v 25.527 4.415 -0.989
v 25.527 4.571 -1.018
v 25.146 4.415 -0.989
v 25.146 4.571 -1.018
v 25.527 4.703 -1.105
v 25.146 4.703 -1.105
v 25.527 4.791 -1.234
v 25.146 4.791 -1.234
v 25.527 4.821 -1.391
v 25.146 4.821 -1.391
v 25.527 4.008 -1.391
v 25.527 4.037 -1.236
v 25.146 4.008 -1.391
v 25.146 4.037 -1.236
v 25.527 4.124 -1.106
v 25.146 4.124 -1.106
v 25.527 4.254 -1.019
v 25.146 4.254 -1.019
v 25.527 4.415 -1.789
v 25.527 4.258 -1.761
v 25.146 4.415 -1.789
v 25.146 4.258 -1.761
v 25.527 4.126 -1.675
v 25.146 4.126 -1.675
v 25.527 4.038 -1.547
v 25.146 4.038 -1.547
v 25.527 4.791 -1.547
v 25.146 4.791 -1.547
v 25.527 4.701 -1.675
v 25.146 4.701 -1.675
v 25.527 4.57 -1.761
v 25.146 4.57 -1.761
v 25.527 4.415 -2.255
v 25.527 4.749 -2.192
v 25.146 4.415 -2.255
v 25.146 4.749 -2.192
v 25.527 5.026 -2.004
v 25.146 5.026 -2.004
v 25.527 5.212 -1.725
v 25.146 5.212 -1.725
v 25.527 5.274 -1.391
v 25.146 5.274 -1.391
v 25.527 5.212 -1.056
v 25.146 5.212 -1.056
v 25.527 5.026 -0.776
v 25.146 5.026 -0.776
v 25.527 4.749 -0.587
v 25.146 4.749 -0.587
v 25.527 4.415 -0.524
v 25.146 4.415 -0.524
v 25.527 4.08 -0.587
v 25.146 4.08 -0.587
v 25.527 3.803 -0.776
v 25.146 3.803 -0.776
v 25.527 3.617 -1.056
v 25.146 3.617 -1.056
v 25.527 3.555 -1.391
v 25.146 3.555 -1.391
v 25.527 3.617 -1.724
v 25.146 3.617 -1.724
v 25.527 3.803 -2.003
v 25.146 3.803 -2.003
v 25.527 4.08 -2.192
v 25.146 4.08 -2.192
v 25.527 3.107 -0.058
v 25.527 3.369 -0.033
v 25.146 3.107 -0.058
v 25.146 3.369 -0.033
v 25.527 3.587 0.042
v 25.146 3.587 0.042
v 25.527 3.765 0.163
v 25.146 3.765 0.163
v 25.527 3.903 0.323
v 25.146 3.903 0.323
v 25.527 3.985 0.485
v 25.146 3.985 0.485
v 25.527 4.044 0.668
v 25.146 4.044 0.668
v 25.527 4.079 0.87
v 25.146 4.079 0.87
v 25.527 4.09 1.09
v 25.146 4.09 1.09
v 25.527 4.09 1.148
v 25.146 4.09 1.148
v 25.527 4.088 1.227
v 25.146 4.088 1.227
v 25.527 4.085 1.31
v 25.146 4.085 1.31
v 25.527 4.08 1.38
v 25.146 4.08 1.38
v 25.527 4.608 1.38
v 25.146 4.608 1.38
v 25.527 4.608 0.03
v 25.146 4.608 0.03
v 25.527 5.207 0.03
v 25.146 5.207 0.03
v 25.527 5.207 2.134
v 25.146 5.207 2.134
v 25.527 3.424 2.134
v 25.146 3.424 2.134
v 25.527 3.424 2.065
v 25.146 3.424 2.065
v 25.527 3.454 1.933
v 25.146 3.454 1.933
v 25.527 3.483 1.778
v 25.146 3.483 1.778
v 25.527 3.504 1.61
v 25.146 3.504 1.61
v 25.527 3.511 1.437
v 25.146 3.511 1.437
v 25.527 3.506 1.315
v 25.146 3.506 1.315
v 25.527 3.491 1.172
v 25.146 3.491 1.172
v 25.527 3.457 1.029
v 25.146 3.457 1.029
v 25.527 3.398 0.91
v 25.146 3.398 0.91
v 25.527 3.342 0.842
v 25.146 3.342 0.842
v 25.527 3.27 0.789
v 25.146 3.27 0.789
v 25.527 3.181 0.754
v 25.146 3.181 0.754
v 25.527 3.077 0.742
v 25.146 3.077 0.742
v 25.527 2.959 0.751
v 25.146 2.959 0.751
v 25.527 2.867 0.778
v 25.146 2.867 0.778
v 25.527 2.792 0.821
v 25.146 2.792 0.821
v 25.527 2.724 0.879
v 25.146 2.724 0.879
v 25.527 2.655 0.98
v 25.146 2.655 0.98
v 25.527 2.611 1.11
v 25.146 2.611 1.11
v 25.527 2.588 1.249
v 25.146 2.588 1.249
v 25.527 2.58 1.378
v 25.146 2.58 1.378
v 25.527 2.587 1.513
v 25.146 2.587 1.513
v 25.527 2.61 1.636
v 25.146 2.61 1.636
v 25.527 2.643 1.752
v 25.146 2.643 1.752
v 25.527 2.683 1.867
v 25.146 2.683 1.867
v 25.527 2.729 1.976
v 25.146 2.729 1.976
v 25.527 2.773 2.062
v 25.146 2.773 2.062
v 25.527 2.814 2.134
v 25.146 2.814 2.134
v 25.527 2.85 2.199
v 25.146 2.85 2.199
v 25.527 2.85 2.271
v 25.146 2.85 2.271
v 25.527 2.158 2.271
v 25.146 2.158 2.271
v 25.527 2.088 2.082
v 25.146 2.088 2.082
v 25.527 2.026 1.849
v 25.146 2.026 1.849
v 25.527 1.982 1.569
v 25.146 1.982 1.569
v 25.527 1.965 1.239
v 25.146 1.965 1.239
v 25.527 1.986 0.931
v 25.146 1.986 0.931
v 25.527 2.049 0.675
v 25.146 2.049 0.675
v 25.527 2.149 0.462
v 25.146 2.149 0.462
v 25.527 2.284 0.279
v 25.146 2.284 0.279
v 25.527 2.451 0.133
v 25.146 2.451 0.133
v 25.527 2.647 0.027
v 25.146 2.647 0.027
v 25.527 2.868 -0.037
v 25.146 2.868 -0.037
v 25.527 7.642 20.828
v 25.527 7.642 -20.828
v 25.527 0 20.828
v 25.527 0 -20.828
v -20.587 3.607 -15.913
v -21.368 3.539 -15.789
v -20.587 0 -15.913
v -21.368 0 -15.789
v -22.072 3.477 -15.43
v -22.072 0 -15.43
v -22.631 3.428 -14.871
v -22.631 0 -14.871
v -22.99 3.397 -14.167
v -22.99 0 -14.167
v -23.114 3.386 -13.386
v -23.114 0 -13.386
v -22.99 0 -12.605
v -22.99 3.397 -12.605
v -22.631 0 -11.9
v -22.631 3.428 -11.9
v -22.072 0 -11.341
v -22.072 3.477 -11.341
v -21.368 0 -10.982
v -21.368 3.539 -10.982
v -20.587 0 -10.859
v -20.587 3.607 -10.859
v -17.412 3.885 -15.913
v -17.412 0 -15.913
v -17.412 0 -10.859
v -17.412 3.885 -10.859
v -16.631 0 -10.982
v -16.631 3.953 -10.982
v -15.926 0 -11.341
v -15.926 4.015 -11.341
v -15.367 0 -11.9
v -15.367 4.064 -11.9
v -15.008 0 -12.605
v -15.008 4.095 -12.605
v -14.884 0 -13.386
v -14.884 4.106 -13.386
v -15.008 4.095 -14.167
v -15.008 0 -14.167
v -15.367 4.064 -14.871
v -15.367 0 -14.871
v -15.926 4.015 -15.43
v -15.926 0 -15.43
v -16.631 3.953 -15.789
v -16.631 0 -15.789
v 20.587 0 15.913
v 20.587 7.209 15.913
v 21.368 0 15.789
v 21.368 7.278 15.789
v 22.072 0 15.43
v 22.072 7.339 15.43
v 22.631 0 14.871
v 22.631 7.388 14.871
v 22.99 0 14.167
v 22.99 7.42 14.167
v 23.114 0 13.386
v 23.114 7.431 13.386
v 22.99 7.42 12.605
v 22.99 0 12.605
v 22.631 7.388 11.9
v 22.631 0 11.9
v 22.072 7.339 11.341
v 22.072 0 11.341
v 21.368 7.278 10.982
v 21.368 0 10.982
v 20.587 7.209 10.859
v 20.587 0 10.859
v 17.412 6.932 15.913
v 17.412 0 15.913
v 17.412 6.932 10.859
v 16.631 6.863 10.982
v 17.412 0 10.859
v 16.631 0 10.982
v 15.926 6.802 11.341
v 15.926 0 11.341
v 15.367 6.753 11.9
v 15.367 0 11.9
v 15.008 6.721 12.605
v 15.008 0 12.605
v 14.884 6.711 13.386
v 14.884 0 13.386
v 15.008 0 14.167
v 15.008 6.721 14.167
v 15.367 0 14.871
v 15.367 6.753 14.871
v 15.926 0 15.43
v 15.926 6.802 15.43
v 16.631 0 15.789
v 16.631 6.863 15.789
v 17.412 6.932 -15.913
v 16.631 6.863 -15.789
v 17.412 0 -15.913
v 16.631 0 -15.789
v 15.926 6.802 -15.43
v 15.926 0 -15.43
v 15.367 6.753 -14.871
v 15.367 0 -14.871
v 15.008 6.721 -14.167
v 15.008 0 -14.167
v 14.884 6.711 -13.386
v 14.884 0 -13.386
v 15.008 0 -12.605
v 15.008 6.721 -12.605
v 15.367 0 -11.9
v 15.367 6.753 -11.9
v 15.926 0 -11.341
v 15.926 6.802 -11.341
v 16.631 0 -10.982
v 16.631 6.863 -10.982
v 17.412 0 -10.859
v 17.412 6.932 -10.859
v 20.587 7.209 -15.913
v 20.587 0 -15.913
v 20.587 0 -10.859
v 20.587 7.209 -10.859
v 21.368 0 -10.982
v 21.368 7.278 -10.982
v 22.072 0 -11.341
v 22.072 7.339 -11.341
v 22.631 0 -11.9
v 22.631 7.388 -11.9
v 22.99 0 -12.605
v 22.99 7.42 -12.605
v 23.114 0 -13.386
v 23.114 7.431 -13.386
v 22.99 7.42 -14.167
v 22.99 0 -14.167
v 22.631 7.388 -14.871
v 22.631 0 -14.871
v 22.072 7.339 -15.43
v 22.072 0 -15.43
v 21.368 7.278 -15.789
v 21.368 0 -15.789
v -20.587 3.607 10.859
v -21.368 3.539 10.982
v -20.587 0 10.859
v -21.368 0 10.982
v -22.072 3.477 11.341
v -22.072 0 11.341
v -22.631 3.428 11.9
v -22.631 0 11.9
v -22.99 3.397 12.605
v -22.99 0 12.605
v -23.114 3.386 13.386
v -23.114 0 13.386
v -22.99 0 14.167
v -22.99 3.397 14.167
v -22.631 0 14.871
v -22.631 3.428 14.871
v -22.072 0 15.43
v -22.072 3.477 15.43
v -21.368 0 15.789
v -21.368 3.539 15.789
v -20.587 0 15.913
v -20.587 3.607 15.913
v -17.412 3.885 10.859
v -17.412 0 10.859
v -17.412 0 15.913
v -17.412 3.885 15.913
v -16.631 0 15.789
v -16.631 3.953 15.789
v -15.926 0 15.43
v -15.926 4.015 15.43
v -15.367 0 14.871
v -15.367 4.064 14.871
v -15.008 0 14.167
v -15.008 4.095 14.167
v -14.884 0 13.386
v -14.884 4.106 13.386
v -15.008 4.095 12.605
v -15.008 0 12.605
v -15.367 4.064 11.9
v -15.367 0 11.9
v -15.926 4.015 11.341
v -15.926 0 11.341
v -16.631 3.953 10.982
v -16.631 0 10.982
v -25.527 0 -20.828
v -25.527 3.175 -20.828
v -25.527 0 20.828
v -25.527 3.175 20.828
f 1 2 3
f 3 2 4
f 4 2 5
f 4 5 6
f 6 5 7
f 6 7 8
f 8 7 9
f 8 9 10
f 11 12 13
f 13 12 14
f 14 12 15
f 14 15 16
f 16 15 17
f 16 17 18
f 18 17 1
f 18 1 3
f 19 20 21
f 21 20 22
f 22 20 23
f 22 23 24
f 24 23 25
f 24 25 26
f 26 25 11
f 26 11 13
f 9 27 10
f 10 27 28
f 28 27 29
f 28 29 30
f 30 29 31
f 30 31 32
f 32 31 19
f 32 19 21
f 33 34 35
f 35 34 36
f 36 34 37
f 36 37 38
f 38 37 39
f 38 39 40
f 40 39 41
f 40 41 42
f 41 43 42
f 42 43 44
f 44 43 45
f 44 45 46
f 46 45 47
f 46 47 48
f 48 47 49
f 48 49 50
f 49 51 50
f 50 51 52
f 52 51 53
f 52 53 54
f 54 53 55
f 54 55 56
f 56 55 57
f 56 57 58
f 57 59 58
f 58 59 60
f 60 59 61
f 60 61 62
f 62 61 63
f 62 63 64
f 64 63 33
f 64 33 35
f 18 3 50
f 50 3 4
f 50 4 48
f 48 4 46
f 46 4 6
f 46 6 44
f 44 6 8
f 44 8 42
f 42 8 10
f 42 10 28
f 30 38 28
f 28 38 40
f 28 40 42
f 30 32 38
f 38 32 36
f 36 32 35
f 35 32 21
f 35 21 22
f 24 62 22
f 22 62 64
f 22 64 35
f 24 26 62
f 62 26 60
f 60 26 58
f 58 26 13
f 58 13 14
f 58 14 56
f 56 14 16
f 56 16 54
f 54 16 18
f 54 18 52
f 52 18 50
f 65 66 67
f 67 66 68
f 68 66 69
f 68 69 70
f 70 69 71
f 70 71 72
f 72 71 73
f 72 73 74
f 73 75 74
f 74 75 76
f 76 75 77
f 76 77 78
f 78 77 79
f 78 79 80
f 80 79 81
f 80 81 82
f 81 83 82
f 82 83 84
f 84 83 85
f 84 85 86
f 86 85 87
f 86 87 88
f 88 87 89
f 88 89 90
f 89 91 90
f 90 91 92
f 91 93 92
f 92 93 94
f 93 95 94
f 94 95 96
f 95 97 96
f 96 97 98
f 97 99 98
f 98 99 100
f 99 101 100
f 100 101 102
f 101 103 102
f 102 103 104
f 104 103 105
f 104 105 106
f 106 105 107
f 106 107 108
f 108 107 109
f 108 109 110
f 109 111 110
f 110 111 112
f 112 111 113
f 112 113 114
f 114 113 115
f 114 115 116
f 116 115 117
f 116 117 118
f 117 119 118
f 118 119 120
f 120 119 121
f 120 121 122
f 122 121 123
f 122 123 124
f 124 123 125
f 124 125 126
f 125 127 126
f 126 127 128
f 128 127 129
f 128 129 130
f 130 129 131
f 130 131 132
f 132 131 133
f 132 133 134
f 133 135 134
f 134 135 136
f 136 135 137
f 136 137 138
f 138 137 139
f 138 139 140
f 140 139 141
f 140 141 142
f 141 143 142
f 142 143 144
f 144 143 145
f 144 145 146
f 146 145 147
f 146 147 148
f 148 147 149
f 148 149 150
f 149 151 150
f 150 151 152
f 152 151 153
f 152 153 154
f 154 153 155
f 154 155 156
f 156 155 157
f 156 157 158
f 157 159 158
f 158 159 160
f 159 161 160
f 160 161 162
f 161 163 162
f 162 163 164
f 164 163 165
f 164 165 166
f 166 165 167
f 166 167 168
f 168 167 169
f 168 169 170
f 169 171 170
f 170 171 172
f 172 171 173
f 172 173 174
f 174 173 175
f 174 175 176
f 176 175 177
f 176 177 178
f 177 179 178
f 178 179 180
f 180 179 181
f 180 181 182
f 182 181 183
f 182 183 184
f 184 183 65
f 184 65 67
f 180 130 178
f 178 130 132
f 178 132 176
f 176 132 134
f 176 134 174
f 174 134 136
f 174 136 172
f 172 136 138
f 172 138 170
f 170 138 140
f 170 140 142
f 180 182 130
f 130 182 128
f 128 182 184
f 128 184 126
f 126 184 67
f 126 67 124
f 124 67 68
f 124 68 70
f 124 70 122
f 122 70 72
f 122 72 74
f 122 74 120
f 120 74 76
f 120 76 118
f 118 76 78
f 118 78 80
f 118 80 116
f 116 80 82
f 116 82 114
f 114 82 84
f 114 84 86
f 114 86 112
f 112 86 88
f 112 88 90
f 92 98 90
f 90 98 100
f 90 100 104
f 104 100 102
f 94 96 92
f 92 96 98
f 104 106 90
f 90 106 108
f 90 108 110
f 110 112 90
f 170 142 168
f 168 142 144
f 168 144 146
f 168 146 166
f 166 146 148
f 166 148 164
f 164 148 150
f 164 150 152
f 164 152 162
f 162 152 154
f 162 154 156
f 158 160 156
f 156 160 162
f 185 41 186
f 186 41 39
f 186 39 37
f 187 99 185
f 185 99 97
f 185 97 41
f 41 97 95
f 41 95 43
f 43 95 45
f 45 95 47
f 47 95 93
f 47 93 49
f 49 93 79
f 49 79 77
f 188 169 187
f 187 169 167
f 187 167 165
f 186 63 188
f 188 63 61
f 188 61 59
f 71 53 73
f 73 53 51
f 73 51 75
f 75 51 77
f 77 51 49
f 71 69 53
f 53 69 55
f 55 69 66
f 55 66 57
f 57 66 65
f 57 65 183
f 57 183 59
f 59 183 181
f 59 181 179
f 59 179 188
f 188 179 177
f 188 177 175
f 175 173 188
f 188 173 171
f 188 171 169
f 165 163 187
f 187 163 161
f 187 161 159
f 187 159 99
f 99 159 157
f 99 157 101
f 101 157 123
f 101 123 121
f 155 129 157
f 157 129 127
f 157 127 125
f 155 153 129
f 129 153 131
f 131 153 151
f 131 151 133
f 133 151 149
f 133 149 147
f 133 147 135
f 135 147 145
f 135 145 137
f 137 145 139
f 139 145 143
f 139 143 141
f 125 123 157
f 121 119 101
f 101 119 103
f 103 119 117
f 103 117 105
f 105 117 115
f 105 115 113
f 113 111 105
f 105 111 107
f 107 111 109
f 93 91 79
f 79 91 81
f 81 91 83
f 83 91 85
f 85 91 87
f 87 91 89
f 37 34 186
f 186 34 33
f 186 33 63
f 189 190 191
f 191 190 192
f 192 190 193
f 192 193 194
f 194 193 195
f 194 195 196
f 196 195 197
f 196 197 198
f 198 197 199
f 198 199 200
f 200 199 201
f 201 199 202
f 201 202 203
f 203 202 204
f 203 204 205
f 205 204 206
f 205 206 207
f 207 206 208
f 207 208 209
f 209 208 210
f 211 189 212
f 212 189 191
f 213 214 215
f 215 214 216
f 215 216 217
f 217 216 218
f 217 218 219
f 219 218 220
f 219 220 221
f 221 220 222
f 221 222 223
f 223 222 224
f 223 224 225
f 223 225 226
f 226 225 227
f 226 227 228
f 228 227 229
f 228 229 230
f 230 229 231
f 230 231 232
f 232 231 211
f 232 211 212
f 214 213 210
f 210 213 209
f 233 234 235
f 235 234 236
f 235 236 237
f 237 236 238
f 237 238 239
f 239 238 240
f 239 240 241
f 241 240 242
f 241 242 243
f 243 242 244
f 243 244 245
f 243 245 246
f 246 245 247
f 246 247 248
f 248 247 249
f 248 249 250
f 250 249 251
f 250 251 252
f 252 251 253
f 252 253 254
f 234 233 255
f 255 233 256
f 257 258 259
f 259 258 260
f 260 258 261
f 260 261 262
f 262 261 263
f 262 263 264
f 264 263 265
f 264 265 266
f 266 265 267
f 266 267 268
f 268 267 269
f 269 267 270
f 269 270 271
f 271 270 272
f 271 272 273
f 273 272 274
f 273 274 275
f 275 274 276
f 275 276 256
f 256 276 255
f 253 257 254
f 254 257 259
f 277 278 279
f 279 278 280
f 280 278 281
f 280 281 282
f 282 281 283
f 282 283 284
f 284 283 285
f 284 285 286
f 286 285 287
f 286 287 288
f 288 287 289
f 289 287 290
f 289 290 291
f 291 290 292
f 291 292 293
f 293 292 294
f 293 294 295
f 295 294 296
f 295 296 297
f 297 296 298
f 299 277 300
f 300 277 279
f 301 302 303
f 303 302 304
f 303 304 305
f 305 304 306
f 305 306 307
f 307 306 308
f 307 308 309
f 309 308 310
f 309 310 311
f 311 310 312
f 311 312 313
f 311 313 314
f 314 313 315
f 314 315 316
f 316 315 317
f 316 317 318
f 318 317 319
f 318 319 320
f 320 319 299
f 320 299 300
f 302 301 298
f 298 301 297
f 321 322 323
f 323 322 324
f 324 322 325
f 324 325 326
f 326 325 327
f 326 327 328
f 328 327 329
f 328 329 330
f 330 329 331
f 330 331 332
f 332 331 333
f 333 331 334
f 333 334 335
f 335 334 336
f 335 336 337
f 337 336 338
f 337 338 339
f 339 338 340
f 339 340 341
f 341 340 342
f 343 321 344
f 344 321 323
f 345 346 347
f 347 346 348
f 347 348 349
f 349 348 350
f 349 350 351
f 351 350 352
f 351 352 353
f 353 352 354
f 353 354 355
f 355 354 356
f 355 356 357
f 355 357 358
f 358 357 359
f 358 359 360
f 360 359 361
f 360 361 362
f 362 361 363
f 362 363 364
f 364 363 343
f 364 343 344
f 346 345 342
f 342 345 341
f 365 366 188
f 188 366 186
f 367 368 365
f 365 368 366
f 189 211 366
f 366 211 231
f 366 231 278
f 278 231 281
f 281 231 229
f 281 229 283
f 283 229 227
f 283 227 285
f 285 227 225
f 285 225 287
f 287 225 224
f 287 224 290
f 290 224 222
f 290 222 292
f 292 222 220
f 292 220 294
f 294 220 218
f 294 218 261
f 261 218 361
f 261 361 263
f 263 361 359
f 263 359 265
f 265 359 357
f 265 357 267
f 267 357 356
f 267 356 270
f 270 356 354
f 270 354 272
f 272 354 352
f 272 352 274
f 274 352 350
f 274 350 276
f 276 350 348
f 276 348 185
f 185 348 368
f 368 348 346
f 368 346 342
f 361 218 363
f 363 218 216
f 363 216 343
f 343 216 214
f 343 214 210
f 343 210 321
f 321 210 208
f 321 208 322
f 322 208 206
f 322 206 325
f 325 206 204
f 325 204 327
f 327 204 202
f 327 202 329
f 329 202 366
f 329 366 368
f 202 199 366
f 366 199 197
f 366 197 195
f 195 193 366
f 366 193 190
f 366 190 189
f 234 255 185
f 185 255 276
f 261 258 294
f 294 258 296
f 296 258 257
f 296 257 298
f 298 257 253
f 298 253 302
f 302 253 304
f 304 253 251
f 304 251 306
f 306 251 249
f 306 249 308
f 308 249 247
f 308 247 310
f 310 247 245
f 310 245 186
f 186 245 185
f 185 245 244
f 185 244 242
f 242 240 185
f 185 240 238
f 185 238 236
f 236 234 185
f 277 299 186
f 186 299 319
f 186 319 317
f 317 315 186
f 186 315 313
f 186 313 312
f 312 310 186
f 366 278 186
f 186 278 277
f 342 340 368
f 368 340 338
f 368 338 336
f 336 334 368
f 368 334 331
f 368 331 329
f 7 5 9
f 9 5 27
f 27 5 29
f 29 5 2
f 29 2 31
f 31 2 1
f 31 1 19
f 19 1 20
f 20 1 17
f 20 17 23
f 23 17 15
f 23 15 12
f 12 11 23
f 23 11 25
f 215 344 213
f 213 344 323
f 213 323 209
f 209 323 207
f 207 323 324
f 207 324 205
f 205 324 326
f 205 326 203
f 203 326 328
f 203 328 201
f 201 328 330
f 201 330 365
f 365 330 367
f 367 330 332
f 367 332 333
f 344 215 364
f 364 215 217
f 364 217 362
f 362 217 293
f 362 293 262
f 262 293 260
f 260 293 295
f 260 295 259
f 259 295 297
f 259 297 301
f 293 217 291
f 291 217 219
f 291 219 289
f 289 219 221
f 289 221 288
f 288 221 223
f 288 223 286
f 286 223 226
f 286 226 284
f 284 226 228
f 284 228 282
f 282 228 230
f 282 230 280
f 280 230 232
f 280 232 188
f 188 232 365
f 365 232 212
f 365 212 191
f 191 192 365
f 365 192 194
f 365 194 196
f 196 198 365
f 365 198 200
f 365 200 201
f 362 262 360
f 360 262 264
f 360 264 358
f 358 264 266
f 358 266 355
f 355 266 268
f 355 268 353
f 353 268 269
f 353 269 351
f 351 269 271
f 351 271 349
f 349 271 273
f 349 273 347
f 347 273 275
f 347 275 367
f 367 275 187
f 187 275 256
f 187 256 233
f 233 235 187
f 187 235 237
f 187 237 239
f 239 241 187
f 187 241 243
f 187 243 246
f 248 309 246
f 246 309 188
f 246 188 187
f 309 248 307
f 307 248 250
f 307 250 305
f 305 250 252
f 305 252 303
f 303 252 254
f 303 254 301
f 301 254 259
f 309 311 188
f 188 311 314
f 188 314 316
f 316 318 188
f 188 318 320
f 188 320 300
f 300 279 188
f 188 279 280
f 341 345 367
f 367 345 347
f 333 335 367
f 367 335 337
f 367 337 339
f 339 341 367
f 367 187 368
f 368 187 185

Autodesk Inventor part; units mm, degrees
ref_plane "YZ Plane" through (0, 0, 0) normal (1, 0, 0) x (0, 1, 0)
ref_plane "XZ Plane" through (0, 0, 0) normal (0, 1, 0) x (-1, 0, 0)
ref_plane "XY Plane" through (0, 0, 0) normal (0, 0, 1) x (1, 0, 0)
sketch "Sketch1" plane through (0, 0, 0) normal (0, 1, 0) x (-1, 0, 0)
  line L0 (25.527, 20.828) -> (-25.527, 20.828)
  line L1 (-25.527, 20.828) -> (-25.527, -20.828)
  line L2 (-25.527, -20.828) -> (25.527, -20.828)
  line L3 (25.527, -20.828) -> (25.527, 20.828)
  circle A0 centre (18.9992, 13.3858) radius 1.9837
  circle A1 centre (18.9992, -13.3858) radius 1.9837
  circle A2 centre (-18.9992, -13.3858) radius 1.9837
  circle A3 centre (-18.9992, 13.3858) radius 1.9837
  circle A4 centre (18.9992, 13.3858) radius 3.048 construction
  point P0 (0, 0)
  point P1 (25.527, 0)
  point P2 (0, -20.828)
  dimension "d0" = 3.9675
  dimension "d1" = 41.656
  dimension "d2" = 51.054
  dimension "d3" = 6.096
  dimension "d4" = 7.4422
  dimension "d5" = 6.5278
  dimension "d6" = 7.4422
  dimension "d7" = 6.5278
sketch "Sketch10" plane through (0, 0, 0) normal (0, 0, 1) x (1, 0, 0)
  line L0 (-25.527, 0) -> (25.527, 0)
  line L1 (25.527, 0) -> (25.527, 7.6416)
  line L2 (-25.527, 0) -> (-25.527, 3.175)
  line L3 (-25.527, 3.175) -> (25.527, 7.6416)
  point P0 (0, 0)
  dimension "d61" = 5
  dimension "d62" = 3.175
extrude "Extrusion8" add sketch "Sketch10" along normal mid plane 41.656
sketch "Sketch11" plane through (-25.527, 0, 20.828) normal (0, -1, 0) x (1, 0, 0)
  line L0 (46.1137, -7.4422) -> (42.9387, -7.4422) construction
  line L1 (46.1137, -4.9149) -> (42.9387, -4.9149)
  line L2 (42.9387, -9.9695) -> (46.1137, -9.9695)
  arc A0 (46.1137, -9.9695) -> (46.1137, -4.9149) centre (46.1137, -7.4422) ccw
  arc A1 (42.9387, -4.9149) -> (42.9387, -9.9695) centre (42.9387, -7.4422) ccw
  line L3 (46.1137, -34.2138) -> (42.9387, -34.2138) construction
  line L4 (51.054, -41.656) -> (51.054, 0) projected
  line L5 (46.1137, -36.7411) -> (42.9387, -36.7411)
  line L6 (42.9387, -31.6865) -> (46.1137, -31.6865)
  arc A2 (46.1137, -36.7411) -> (46.1137, -31.6865) centre (46.1137, -34.2138) ccw
  arc A3 (42.9387, -31.6865) -> (42.9387, -36.7411) centre (42.9387, -34.2138) ccw
  line L7 (8.1153, -34.2138) -> (4.9403, -34.2138) construction
  line L8 (8.1153, -36.7411) -> (4.9403, -36.7411)
  line L9 (4.9403, -31.6865) -> (8.1153, -31.6865)
  arc A4 (8.1153, -36.7411) -> (8.1153, -31.6865) centre (8.1153, -34.2138) ccw
  arc A5 (4.9403, -31.6865) -> (4.9403, -36.7411) centre (4.9403, -34.2138) ccw
  line L10 (8.1153, -7.4422) -> (4.9403, -7.4422) construction
  line L11 (8.1153, -9.9695) -> (4.9403, -9.9695)
  line L12 (4.9403, -4.9149) -> (8.1153, -4.9149)
  arc A6 (8.1153, -9.9695) -> (8.1153, -4.9149) centre (8.1153, -7.4422) ccw
  arc A7 (4.9403, -4.9149) -> (4.9403, -9.9695) centre (4.9403, -7.4422) ccw
  point P0 (25.527, -20.828)
  point P1 (44.5262, -7.4422)
  point P2 (44.5262, -34.2138)
  point P3 (6.5278, -34.2138)
  point P4 (6.5278, -7.4422)
  point P5 (44.5262, -7.4422)
  point P6 (44.5262, -34.2138)
  point P7 (6.5278, -34.2138)
  point P8 (6.5278, -7.4422)
  point P9 (44.5262, -9.9695)
  point P10 (6.5278, -36.7411)
  dimension "d65" = 3.175
  dimension "d66" = 2.5273
extrude "Extrusion9" cut sketch "Sketch11" against normal blind 41.656
sketch "Sketch13" plane through (25.527, 0, 20.828) normal (1, 0, 0) x (0, 0, -1)
  line L0 (41.656, 7.6416) -> (0, 7.6416) projected
  line L1 (0, 0) -> (0, 7.6416) projected
  line L2 (41.656, 0) -> (0, 0) projected
  line L3 (41.656, 7.6416) -> (41.656, 0) projected
  line L4 (25.4999, 2.032) -> (16.1561, 2.032)
  spline S0 degree 2 poles (20.8859, 3.1075) (20.8859, 2.8579) (20.7161, 2.436) (20.5488, 2.2841) knots 0 0 0 1 2 2 2
  spline S1 degree 2 poles (20.5488, 2.2841) (20.3816, 2.1323) (19.9236, 1.9651) (19.5891, 1.9651) knots 0 0 0 1 2 2 2
  spline S2 degree 2 poles (19.5891, 1.9651) (19.2341, 1.9677) (18.7246, 2.0835) (18.5574, 2.1581) knots 0 0 0 1 2 2 2
  line L5 (18.5574, 2.1581) -> (18.5574, 2.8502)
  line L6 (18.5574, 2.8502) -> (18.6294, 2.8502)
  spline S3 degree 2 poles (18.6294, 2.8502) (18.6912, 2.8167) (18.8404, 2.7293) (18.9613, 2.683) knots 0 0 0 1 2 2 2
  spline S4 degree 2 poles (18.9613, 2.683) (19.0745, 2.6392) (19.3087, 2.58) (19.4502, 2.58) knots 0 0 0 1 2 2 2
  spline S5 degree 2 poles (19.4502, 2.58) (19.5737, 2.58) (19.8619, 2.6418) (19.9493, 2.7241) knots 0 0 0 1 2 2 2
  spline S6 degree 2 poles (19.9493, 2.7241) (20.0137, 2.7884) (20.0857, 2.9454) (20.0857, 3.0766) knots 0 0 0 1 2 2 2
  spline S7 degree 2 poles (20.0857, 3.0766) (20.0857, 3.1898) (19.9931, 3.3493) (19.9185, 3.3982) knots 0 0 0 1 2 2 2
  spline S8 degree 2 poles (19.9185, 3.3982) (19.8104, 3.4703) (19.5017, 3.5114) (19.391, 3.5114) knots 0 0 0 1 2 2 2
  spline S9 degree 2 poles (19.391, 3.5114) (19.2161, 3.5114) (18.8841, 3.4548) (18.7632, 3.424) knots 0 0 0 1 2 2 2
  line L7 (18.7632, 3.424) -> (18.6938, 3.424)
  line L8 (18.6938, 3.424) -> (18.6938, 5.207)
  line L9 (18.6938, 5.207) -> (20.7984, 5.207)
  line L10 (20.7984, 5.207) -> (20.7984, 4.6075)
  line L11 (20.7984, 4.6075) -> (19.4476, 4.6075)
  line L12 (19.4476, 4.6075) -> (19.4476, 4.0801)
  spline S10 degree 2 poles (19.4476, 4.0801) (19.5119, 4.0852) (19.6895, 4.0903) (19.7384, 4.0903) knots 0 0 0 1 2 2 2
  spline S11 degree 2 poles (19.7384, 4.0903) (19.9674, 4.0903) (20.3533, 3.9977) (20.5051, 3.9025) knots 0 0 0 1 2 2 2
  spline S12 degree 2 poles (20.5051, 3.9025) (20.6852, 3.7842) (20.8859, 3.3905) (20.8859, 3.1075) knots 0 0 0 1 2 2 2
  spline S13 degree 2 poles (23.0832, 4.4145) (23.0832, 4.0518) (22.5789, 3.5552) (22.2187, 3.5552) knots 0 0 0 1 2 2 2
  spline S14 degree 2 poles (22.2187, 3.5552) (21.8559, 3.5552) (21.3516, 4.0518) (21.3516, 4.4145) knots 0 0 0 1 2 2 2
  spline S15 degree 2 poles (21.3516, 4.4145) (21.3516, 4.7773) (21.8559, 5.2739) (22.2187, 5.2739) knots 0 0 0 1 2 2 2
  spline S16 degree 2 poles (22.2187, 5.2739) (22.5815, 5.2739) (23.0832, 4.7773) (23.0832, 4.4145) knots 0 0 0 1 2 2 2
  spline S17 degree 2 poles (22.6175, 4.4145) (22.6175, 4.5818) (22.3885, 4.8211) (22.2187, 4.8211) knots 0 0 0 1 2 2 2
  spline S18 degree 2 poles (22.2187, 4.8211) (22.0489, 4.8211) (21.8173, 4.5844) (21.8173, 4.4145) knots 0 0 0 1 2 2 2
  spline S19 degree 2 poles (21.8173, 4.4145) (21.8173, 4.2396) (22.0514, 4.008) (22.2187, 4.008) knots 0 0 0 1 2 2 2
  spline S20 degree 2 poles (22.2187, 4.008) (22.3885, 4.008) (22.6175, 4.2447) (22.6175, 4.4145) knots 0 0 0 1 2 2 2
  point P0 (20.828, 0)
  point P1 (20.828, 0)
  point P2 (20.828, 2.032)
  dimension "d69" = 2.032
extrude "Extrusion10" cut sketch "Sketch13" against normal blind 0.381 contours S1 S2 L4 | L4 S2 L5 L6 S3 S4 S5 S6 S7 S8 S9 L7 L8 L9 L10 L11 L12 S10 S11 S12 S0 S1 | S13 S14 S15 S16
equation "\"d6\" = d4"
equation "\"d7\" = d5"
equation "\"d23\" = d22"
equation "\"d25\" = 0.5 * d24"
equation "\"d22\" = 3.175"
equation "\"d24\" = 4.7625"
properties part number "shim 5 Deg"
